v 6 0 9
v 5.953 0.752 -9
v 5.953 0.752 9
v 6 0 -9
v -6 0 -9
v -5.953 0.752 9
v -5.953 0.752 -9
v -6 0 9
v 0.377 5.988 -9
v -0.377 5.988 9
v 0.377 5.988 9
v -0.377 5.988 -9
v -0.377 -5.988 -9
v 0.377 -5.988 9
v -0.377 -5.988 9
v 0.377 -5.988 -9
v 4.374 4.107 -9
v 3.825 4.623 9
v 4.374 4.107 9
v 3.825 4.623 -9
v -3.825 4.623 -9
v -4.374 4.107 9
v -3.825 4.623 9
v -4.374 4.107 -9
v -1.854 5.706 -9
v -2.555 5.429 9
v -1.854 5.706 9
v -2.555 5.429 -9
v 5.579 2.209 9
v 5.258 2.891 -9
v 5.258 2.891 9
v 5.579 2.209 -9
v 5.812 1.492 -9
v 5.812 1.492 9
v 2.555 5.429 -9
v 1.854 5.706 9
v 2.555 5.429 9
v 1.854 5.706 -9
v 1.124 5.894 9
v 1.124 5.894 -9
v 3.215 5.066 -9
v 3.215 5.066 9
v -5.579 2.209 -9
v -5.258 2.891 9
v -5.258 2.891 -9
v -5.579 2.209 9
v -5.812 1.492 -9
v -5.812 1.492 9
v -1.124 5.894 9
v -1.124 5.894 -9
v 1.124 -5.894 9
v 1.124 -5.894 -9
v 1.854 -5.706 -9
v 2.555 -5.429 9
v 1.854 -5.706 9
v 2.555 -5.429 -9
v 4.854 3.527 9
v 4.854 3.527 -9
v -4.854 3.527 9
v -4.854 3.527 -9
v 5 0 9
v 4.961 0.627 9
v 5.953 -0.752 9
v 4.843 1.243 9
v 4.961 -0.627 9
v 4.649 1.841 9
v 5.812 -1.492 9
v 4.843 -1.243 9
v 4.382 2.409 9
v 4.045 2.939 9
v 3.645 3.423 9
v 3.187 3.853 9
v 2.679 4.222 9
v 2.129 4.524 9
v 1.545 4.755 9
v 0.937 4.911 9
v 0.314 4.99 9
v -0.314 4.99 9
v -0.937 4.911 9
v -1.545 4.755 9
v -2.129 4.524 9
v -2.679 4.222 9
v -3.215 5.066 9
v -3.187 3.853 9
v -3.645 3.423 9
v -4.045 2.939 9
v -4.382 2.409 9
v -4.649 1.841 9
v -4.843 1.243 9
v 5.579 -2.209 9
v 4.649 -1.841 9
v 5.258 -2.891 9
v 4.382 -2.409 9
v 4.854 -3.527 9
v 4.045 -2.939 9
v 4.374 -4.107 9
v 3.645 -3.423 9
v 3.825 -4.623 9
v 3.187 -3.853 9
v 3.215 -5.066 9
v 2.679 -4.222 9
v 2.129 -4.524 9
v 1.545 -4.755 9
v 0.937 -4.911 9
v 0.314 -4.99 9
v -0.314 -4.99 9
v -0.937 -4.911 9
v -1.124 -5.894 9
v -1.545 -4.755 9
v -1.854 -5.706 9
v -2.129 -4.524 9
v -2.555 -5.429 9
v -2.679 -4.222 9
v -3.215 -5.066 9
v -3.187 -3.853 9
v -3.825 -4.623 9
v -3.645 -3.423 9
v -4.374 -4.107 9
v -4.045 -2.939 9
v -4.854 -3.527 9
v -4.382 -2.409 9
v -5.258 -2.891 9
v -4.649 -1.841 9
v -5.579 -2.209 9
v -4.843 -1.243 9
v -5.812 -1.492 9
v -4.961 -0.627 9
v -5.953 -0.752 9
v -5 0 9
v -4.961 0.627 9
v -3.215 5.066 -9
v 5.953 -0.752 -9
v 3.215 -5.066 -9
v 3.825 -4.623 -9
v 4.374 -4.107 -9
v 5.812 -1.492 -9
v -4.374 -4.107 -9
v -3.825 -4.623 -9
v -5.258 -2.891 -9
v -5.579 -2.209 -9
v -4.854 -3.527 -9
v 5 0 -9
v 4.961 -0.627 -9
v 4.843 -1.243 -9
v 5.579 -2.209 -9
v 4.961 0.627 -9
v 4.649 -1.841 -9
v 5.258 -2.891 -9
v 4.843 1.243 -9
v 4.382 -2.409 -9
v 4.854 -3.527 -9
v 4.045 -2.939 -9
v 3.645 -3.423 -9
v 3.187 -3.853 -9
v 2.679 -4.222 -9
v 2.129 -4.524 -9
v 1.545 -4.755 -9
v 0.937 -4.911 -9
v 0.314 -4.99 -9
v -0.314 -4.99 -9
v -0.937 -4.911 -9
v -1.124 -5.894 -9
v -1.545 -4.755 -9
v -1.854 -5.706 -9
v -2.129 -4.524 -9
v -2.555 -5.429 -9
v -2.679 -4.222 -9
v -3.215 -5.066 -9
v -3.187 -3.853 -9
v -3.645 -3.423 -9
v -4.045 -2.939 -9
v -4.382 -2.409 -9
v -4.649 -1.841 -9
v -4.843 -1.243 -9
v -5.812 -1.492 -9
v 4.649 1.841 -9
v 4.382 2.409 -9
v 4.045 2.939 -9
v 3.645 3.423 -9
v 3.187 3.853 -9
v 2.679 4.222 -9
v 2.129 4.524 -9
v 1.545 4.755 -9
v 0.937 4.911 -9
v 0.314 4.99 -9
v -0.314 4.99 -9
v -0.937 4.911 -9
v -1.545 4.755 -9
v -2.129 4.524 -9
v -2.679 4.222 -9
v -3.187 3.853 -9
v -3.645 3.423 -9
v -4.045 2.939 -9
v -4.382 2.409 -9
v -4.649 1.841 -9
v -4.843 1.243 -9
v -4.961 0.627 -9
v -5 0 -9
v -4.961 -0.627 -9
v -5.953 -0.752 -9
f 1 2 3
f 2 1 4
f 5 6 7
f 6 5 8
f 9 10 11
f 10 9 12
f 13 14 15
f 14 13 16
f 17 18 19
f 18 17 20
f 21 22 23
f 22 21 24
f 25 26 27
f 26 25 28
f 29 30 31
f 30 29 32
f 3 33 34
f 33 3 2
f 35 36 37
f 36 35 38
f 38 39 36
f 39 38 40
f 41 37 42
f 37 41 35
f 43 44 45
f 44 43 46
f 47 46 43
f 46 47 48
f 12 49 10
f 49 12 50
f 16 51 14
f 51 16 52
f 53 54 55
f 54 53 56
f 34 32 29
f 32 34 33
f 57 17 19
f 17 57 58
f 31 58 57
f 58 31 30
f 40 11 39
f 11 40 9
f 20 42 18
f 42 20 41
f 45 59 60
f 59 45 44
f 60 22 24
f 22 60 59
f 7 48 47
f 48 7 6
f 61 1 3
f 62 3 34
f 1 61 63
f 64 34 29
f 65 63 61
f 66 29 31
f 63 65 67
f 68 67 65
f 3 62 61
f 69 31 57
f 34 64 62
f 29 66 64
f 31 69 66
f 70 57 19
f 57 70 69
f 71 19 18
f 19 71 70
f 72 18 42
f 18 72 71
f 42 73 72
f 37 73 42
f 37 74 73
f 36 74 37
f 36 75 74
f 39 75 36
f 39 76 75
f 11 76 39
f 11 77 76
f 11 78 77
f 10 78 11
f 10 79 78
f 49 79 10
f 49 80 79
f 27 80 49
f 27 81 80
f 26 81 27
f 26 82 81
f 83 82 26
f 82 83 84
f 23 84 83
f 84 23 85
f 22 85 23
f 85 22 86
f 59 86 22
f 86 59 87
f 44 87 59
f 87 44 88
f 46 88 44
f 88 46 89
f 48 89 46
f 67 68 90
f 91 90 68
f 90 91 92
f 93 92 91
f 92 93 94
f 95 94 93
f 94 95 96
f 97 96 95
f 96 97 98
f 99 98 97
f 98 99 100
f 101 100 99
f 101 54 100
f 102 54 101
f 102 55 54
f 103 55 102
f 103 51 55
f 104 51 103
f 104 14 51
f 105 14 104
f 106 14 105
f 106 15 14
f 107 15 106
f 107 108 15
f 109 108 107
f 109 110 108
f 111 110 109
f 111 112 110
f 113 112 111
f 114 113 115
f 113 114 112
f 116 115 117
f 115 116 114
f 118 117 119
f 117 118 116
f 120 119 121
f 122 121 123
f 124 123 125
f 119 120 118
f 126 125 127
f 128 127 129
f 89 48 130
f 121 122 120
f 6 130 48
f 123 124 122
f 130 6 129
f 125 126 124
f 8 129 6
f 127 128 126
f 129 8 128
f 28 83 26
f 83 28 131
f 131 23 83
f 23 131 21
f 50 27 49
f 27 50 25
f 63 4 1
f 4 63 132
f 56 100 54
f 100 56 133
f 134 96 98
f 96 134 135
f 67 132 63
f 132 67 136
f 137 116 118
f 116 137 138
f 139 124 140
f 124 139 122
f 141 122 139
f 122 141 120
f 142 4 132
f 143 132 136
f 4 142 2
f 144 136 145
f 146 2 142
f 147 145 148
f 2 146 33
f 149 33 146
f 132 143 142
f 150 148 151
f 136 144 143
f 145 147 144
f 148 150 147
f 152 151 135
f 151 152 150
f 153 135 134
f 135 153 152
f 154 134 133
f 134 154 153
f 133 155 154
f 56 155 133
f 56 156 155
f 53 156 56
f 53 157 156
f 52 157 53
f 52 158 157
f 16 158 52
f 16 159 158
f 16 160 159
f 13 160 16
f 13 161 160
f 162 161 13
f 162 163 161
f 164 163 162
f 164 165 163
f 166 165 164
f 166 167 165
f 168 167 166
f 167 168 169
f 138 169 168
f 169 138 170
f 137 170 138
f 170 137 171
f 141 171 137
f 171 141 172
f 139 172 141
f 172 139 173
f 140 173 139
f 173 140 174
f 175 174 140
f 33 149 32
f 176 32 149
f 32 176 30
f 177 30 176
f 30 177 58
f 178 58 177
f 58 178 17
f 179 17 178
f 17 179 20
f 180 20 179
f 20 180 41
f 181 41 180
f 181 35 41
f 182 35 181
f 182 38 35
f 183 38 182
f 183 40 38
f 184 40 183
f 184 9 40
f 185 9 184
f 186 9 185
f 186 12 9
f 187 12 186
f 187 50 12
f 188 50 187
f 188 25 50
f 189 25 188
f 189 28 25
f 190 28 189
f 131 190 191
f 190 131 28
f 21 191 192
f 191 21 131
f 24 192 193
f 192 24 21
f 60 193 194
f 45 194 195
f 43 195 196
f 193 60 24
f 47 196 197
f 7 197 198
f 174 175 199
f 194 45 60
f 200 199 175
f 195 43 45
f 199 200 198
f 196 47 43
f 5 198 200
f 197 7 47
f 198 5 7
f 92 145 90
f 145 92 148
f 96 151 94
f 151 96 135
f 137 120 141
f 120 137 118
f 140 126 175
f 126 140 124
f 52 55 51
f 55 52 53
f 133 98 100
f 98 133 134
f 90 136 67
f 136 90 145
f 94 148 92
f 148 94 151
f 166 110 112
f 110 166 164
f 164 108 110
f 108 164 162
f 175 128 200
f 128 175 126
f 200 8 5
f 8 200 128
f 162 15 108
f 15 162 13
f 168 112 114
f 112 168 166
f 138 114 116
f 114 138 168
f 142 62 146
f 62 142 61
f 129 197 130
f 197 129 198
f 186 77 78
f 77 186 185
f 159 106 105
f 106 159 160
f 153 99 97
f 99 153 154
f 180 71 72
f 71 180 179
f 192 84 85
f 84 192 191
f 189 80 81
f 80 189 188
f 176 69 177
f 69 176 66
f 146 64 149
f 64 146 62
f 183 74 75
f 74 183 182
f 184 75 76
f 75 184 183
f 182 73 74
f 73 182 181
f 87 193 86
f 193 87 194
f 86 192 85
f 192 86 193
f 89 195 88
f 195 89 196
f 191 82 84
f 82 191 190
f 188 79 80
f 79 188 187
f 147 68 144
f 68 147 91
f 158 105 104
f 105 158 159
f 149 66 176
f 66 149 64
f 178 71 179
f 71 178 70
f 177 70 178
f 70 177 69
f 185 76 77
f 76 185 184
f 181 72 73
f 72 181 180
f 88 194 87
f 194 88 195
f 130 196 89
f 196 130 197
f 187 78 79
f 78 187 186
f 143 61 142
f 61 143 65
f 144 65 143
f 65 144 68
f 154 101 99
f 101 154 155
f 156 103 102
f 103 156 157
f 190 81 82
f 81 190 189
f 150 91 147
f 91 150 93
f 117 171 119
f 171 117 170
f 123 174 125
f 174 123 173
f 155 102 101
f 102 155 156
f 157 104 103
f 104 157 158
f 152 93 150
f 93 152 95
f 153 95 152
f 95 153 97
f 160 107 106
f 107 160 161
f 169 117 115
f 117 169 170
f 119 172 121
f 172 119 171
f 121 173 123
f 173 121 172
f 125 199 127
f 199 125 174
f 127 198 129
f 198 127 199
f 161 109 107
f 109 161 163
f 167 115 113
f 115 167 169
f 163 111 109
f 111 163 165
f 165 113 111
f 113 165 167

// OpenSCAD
$fn = 50;


difference() {
	union() {
		translate(v = [0, 0, -9.0000000000]) {
			cylinder(h = 18, r = 6.0000000000);
		}
	}
	union() {
		translate(v = [0, 0, -100.0000000000]) {
			cylinder(h = 200, r = 5.0000000000);
		}
	}
}
